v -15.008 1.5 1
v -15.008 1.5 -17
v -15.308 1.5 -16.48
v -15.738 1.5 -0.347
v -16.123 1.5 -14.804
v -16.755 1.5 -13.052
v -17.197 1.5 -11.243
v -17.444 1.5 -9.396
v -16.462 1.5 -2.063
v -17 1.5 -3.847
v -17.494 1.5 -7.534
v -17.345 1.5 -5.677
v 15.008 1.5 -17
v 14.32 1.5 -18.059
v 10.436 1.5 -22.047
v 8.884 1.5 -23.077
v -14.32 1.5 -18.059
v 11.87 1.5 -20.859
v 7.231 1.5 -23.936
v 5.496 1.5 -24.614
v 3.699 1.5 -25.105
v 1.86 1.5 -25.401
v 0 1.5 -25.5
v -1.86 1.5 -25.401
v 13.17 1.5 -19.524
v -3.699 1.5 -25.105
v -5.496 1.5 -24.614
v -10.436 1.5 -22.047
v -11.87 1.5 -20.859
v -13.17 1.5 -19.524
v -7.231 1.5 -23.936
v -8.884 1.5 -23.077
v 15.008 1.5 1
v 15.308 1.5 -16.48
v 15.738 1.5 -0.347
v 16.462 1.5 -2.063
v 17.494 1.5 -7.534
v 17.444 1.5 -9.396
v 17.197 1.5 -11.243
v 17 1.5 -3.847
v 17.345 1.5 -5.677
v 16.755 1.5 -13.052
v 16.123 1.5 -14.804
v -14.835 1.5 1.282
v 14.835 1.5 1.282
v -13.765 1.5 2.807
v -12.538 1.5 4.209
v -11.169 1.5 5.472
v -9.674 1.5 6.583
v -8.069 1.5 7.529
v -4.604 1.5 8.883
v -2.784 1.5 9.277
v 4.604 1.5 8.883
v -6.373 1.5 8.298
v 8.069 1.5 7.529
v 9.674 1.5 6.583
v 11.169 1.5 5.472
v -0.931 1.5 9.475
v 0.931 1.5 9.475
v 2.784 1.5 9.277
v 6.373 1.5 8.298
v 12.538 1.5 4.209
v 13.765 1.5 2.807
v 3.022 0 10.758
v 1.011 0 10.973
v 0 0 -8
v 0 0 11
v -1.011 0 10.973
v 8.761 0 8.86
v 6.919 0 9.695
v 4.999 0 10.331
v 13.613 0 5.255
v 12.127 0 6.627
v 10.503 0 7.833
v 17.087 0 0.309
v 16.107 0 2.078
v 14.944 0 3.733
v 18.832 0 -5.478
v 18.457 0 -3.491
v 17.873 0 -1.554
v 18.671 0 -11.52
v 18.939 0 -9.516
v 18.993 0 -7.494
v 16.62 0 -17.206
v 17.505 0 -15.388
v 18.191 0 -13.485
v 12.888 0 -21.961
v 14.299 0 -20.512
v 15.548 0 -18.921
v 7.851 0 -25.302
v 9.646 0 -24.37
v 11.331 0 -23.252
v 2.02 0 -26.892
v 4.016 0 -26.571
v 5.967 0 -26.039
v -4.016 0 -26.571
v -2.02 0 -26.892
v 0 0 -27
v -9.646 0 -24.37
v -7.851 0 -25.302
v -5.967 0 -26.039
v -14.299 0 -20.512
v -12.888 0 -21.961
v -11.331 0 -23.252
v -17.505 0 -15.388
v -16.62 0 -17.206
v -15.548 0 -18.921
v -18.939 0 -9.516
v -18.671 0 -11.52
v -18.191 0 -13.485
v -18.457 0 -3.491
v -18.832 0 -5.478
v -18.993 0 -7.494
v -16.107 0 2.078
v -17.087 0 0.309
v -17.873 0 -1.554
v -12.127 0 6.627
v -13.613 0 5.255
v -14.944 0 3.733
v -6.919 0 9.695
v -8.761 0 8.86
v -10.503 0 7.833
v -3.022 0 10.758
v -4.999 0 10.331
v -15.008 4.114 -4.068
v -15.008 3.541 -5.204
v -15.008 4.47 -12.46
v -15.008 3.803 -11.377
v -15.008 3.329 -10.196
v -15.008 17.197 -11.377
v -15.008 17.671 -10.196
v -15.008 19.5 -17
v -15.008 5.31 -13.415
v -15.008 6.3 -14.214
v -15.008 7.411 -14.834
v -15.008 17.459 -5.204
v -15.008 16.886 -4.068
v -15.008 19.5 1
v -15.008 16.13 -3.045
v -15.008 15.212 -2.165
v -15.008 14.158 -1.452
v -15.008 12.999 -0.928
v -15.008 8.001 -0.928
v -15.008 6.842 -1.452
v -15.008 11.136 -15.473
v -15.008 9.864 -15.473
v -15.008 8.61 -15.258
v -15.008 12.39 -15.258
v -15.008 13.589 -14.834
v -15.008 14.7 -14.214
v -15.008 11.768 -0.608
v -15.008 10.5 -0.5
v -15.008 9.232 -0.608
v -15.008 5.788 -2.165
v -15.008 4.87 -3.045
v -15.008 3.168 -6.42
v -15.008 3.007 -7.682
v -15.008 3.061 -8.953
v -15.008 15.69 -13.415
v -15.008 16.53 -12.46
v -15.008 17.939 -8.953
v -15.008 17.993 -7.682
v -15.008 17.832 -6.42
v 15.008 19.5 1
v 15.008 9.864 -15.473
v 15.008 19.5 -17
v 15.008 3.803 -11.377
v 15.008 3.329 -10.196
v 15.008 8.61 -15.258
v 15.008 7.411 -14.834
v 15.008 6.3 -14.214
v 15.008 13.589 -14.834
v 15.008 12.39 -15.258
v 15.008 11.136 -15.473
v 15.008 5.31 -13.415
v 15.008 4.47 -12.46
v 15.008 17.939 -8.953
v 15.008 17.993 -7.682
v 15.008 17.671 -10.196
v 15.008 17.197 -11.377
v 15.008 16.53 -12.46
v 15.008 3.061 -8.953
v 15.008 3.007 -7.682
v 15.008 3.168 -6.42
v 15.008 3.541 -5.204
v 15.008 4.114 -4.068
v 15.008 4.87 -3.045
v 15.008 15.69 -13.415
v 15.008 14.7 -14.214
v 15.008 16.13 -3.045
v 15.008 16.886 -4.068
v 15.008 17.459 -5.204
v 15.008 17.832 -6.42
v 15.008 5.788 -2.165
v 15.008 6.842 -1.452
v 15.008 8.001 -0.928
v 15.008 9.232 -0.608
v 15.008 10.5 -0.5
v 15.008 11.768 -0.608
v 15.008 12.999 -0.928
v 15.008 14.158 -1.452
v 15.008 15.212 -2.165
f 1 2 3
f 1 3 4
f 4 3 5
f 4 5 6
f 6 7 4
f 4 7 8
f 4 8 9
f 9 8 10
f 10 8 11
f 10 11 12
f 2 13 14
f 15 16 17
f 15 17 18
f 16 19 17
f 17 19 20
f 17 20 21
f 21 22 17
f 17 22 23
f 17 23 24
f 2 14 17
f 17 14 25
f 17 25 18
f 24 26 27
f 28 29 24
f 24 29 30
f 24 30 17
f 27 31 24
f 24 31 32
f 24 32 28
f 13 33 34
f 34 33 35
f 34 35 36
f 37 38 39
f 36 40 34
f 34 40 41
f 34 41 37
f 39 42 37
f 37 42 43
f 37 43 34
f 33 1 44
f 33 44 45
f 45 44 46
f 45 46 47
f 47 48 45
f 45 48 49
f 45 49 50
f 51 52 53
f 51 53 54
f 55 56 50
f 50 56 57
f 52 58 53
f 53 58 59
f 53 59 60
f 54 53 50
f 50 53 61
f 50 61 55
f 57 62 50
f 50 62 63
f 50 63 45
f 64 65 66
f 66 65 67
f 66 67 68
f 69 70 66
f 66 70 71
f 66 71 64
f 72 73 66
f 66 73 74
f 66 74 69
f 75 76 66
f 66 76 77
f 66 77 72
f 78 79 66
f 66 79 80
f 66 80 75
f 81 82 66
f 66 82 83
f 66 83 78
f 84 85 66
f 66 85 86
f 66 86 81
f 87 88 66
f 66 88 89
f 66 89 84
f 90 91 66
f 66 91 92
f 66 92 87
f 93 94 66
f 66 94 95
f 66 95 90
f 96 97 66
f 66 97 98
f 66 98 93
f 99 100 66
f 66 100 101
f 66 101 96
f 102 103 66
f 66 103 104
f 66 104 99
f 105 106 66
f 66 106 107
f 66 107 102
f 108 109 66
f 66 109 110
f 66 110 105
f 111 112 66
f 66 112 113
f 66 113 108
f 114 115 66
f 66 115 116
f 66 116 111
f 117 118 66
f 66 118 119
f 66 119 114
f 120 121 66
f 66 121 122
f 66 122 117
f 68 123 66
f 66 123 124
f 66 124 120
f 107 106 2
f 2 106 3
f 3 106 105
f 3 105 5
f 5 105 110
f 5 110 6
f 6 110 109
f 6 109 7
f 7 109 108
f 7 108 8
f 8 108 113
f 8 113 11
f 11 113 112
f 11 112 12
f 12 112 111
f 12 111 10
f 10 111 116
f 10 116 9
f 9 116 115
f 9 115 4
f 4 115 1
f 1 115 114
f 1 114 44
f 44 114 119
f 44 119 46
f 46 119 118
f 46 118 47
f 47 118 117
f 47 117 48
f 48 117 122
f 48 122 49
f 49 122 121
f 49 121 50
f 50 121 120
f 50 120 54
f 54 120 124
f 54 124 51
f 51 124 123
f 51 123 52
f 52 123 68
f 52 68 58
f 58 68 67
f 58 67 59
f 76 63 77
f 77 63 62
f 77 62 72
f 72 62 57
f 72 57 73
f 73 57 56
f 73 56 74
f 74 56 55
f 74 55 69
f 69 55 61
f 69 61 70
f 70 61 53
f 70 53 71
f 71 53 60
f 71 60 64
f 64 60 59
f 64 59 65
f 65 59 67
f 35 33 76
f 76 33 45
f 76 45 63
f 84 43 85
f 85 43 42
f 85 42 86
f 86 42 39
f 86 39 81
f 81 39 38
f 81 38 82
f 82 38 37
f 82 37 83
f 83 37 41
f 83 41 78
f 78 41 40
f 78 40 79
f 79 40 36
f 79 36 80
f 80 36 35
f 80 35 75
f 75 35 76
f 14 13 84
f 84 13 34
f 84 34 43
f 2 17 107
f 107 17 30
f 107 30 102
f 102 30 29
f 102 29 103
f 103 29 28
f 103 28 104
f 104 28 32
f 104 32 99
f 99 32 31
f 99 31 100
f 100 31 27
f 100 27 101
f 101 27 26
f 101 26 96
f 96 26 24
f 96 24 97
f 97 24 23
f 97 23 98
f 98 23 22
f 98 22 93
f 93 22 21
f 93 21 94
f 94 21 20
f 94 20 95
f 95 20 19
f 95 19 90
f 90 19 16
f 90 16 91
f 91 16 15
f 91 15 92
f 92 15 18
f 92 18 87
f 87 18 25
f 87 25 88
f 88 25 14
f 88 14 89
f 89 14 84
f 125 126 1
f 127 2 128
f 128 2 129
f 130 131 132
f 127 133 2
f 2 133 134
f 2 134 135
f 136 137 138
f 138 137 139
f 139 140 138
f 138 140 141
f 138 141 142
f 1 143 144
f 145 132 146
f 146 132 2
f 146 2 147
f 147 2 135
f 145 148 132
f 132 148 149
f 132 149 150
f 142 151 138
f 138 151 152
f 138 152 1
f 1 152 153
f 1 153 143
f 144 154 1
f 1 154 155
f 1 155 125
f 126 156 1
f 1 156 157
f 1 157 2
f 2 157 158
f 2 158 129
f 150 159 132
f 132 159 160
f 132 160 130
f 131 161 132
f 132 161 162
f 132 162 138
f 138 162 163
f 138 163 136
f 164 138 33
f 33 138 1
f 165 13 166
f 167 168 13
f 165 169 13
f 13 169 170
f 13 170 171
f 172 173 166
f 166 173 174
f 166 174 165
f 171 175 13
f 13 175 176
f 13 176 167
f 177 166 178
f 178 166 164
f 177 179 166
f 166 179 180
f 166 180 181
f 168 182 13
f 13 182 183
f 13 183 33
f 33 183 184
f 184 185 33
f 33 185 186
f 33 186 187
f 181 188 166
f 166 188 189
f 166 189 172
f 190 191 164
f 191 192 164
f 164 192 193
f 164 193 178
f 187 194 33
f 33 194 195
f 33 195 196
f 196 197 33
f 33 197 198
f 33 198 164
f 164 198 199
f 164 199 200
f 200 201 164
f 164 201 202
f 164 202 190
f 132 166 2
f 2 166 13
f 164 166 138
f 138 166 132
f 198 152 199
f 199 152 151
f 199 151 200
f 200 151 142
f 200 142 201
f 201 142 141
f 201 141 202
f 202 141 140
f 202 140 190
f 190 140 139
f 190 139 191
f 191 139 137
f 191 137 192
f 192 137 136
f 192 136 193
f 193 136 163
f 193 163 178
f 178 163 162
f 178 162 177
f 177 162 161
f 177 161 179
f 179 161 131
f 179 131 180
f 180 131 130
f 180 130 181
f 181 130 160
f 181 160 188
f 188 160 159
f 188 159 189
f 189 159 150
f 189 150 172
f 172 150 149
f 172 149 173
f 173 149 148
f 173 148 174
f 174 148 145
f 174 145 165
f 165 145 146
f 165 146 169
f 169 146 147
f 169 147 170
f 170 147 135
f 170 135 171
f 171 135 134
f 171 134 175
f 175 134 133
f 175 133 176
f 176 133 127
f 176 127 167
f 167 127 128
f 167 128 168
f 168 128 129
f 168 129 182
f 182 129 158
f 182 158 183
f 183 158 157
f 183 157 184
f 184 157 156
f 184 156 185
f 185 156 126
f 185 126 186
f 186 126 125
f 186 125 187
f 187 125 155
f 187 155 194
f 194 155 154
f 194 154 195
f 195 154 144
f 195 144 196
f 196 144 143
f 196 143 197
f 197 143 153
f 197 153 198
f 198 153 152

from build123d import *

# Parameters (mm, degrees)
SKETCH13_R              = 20
BOSS_EXTRUDE2_DEPTH     = 1.5
CHAMFER1_SIZE           = 2.5
ESQUISSE1_W             = 30.01666204
ESQUISSE1_H             = 18
BOSS_EXTRU_1_DEPTH      = 18
ESQUISSE2_R             = 7.5
ENL_V_MAT_EXTRU_1_DEPTH = 40


with BuildPart() as part:
    # Sketch13 → Boss-Extrude2 (new body)
    with BuildSketch(Plane(origin=(0, 0, 0), x_dir=(1, 0, 0), z_dir=(0, 1, 0))):
        with Locations(Location((0, 8, 0), (0, 0, 270))):
            Circle(SKETCH13_R)
    extrude(amount=BOSS_EXTRUDE2_DEPTH)

    # Chamfer1
    # the kernel refuses this chamfer: 2.5 mm, written as the material it takes off along each edge
    with BuildSketch(Plane(origin=(0, 1.5, -8), x_dir=(0, 0, 1), z_dir=(-1, 0, 0))) as chamfer1_piece_1:
        Polygon((20, -CHAMFER1_SIZE), (20 - CHAMFER1_SIZE, 0), (20, 0), align=None)
    revolve(axis=Axis((0, 1.5, -8), (0, 1, 0)), mode=Mode.SUBTRACT)

    # Esquisse1 → Boss.-Extru.1 (add)
    with BuildSketch(Plane(origin=(0, 1.5, 0), x_dir=(1, 0, 0), z_dir=(0, 1, 0))):
        with Locations((0, 8)):
            Rectangle(ESQUISSE1_W, ESQUISSE1_H)
    extrude(amount=BOSS_EXTRU_1_DEPTH)

    # Esquisse2 → Enlèv. mat.-Extru.1 (cut)
    with BuildSketch(Plane.ZY.offset(15.00833102)):
        with Locations((-8, 10.5)):
            Circle(ESQUISSE2_R)
    extrude(amount=-ENL_V_MAT_EXTRU_1_DEPTH, mode=Mode.SUBTRACT)


solid = part.part
